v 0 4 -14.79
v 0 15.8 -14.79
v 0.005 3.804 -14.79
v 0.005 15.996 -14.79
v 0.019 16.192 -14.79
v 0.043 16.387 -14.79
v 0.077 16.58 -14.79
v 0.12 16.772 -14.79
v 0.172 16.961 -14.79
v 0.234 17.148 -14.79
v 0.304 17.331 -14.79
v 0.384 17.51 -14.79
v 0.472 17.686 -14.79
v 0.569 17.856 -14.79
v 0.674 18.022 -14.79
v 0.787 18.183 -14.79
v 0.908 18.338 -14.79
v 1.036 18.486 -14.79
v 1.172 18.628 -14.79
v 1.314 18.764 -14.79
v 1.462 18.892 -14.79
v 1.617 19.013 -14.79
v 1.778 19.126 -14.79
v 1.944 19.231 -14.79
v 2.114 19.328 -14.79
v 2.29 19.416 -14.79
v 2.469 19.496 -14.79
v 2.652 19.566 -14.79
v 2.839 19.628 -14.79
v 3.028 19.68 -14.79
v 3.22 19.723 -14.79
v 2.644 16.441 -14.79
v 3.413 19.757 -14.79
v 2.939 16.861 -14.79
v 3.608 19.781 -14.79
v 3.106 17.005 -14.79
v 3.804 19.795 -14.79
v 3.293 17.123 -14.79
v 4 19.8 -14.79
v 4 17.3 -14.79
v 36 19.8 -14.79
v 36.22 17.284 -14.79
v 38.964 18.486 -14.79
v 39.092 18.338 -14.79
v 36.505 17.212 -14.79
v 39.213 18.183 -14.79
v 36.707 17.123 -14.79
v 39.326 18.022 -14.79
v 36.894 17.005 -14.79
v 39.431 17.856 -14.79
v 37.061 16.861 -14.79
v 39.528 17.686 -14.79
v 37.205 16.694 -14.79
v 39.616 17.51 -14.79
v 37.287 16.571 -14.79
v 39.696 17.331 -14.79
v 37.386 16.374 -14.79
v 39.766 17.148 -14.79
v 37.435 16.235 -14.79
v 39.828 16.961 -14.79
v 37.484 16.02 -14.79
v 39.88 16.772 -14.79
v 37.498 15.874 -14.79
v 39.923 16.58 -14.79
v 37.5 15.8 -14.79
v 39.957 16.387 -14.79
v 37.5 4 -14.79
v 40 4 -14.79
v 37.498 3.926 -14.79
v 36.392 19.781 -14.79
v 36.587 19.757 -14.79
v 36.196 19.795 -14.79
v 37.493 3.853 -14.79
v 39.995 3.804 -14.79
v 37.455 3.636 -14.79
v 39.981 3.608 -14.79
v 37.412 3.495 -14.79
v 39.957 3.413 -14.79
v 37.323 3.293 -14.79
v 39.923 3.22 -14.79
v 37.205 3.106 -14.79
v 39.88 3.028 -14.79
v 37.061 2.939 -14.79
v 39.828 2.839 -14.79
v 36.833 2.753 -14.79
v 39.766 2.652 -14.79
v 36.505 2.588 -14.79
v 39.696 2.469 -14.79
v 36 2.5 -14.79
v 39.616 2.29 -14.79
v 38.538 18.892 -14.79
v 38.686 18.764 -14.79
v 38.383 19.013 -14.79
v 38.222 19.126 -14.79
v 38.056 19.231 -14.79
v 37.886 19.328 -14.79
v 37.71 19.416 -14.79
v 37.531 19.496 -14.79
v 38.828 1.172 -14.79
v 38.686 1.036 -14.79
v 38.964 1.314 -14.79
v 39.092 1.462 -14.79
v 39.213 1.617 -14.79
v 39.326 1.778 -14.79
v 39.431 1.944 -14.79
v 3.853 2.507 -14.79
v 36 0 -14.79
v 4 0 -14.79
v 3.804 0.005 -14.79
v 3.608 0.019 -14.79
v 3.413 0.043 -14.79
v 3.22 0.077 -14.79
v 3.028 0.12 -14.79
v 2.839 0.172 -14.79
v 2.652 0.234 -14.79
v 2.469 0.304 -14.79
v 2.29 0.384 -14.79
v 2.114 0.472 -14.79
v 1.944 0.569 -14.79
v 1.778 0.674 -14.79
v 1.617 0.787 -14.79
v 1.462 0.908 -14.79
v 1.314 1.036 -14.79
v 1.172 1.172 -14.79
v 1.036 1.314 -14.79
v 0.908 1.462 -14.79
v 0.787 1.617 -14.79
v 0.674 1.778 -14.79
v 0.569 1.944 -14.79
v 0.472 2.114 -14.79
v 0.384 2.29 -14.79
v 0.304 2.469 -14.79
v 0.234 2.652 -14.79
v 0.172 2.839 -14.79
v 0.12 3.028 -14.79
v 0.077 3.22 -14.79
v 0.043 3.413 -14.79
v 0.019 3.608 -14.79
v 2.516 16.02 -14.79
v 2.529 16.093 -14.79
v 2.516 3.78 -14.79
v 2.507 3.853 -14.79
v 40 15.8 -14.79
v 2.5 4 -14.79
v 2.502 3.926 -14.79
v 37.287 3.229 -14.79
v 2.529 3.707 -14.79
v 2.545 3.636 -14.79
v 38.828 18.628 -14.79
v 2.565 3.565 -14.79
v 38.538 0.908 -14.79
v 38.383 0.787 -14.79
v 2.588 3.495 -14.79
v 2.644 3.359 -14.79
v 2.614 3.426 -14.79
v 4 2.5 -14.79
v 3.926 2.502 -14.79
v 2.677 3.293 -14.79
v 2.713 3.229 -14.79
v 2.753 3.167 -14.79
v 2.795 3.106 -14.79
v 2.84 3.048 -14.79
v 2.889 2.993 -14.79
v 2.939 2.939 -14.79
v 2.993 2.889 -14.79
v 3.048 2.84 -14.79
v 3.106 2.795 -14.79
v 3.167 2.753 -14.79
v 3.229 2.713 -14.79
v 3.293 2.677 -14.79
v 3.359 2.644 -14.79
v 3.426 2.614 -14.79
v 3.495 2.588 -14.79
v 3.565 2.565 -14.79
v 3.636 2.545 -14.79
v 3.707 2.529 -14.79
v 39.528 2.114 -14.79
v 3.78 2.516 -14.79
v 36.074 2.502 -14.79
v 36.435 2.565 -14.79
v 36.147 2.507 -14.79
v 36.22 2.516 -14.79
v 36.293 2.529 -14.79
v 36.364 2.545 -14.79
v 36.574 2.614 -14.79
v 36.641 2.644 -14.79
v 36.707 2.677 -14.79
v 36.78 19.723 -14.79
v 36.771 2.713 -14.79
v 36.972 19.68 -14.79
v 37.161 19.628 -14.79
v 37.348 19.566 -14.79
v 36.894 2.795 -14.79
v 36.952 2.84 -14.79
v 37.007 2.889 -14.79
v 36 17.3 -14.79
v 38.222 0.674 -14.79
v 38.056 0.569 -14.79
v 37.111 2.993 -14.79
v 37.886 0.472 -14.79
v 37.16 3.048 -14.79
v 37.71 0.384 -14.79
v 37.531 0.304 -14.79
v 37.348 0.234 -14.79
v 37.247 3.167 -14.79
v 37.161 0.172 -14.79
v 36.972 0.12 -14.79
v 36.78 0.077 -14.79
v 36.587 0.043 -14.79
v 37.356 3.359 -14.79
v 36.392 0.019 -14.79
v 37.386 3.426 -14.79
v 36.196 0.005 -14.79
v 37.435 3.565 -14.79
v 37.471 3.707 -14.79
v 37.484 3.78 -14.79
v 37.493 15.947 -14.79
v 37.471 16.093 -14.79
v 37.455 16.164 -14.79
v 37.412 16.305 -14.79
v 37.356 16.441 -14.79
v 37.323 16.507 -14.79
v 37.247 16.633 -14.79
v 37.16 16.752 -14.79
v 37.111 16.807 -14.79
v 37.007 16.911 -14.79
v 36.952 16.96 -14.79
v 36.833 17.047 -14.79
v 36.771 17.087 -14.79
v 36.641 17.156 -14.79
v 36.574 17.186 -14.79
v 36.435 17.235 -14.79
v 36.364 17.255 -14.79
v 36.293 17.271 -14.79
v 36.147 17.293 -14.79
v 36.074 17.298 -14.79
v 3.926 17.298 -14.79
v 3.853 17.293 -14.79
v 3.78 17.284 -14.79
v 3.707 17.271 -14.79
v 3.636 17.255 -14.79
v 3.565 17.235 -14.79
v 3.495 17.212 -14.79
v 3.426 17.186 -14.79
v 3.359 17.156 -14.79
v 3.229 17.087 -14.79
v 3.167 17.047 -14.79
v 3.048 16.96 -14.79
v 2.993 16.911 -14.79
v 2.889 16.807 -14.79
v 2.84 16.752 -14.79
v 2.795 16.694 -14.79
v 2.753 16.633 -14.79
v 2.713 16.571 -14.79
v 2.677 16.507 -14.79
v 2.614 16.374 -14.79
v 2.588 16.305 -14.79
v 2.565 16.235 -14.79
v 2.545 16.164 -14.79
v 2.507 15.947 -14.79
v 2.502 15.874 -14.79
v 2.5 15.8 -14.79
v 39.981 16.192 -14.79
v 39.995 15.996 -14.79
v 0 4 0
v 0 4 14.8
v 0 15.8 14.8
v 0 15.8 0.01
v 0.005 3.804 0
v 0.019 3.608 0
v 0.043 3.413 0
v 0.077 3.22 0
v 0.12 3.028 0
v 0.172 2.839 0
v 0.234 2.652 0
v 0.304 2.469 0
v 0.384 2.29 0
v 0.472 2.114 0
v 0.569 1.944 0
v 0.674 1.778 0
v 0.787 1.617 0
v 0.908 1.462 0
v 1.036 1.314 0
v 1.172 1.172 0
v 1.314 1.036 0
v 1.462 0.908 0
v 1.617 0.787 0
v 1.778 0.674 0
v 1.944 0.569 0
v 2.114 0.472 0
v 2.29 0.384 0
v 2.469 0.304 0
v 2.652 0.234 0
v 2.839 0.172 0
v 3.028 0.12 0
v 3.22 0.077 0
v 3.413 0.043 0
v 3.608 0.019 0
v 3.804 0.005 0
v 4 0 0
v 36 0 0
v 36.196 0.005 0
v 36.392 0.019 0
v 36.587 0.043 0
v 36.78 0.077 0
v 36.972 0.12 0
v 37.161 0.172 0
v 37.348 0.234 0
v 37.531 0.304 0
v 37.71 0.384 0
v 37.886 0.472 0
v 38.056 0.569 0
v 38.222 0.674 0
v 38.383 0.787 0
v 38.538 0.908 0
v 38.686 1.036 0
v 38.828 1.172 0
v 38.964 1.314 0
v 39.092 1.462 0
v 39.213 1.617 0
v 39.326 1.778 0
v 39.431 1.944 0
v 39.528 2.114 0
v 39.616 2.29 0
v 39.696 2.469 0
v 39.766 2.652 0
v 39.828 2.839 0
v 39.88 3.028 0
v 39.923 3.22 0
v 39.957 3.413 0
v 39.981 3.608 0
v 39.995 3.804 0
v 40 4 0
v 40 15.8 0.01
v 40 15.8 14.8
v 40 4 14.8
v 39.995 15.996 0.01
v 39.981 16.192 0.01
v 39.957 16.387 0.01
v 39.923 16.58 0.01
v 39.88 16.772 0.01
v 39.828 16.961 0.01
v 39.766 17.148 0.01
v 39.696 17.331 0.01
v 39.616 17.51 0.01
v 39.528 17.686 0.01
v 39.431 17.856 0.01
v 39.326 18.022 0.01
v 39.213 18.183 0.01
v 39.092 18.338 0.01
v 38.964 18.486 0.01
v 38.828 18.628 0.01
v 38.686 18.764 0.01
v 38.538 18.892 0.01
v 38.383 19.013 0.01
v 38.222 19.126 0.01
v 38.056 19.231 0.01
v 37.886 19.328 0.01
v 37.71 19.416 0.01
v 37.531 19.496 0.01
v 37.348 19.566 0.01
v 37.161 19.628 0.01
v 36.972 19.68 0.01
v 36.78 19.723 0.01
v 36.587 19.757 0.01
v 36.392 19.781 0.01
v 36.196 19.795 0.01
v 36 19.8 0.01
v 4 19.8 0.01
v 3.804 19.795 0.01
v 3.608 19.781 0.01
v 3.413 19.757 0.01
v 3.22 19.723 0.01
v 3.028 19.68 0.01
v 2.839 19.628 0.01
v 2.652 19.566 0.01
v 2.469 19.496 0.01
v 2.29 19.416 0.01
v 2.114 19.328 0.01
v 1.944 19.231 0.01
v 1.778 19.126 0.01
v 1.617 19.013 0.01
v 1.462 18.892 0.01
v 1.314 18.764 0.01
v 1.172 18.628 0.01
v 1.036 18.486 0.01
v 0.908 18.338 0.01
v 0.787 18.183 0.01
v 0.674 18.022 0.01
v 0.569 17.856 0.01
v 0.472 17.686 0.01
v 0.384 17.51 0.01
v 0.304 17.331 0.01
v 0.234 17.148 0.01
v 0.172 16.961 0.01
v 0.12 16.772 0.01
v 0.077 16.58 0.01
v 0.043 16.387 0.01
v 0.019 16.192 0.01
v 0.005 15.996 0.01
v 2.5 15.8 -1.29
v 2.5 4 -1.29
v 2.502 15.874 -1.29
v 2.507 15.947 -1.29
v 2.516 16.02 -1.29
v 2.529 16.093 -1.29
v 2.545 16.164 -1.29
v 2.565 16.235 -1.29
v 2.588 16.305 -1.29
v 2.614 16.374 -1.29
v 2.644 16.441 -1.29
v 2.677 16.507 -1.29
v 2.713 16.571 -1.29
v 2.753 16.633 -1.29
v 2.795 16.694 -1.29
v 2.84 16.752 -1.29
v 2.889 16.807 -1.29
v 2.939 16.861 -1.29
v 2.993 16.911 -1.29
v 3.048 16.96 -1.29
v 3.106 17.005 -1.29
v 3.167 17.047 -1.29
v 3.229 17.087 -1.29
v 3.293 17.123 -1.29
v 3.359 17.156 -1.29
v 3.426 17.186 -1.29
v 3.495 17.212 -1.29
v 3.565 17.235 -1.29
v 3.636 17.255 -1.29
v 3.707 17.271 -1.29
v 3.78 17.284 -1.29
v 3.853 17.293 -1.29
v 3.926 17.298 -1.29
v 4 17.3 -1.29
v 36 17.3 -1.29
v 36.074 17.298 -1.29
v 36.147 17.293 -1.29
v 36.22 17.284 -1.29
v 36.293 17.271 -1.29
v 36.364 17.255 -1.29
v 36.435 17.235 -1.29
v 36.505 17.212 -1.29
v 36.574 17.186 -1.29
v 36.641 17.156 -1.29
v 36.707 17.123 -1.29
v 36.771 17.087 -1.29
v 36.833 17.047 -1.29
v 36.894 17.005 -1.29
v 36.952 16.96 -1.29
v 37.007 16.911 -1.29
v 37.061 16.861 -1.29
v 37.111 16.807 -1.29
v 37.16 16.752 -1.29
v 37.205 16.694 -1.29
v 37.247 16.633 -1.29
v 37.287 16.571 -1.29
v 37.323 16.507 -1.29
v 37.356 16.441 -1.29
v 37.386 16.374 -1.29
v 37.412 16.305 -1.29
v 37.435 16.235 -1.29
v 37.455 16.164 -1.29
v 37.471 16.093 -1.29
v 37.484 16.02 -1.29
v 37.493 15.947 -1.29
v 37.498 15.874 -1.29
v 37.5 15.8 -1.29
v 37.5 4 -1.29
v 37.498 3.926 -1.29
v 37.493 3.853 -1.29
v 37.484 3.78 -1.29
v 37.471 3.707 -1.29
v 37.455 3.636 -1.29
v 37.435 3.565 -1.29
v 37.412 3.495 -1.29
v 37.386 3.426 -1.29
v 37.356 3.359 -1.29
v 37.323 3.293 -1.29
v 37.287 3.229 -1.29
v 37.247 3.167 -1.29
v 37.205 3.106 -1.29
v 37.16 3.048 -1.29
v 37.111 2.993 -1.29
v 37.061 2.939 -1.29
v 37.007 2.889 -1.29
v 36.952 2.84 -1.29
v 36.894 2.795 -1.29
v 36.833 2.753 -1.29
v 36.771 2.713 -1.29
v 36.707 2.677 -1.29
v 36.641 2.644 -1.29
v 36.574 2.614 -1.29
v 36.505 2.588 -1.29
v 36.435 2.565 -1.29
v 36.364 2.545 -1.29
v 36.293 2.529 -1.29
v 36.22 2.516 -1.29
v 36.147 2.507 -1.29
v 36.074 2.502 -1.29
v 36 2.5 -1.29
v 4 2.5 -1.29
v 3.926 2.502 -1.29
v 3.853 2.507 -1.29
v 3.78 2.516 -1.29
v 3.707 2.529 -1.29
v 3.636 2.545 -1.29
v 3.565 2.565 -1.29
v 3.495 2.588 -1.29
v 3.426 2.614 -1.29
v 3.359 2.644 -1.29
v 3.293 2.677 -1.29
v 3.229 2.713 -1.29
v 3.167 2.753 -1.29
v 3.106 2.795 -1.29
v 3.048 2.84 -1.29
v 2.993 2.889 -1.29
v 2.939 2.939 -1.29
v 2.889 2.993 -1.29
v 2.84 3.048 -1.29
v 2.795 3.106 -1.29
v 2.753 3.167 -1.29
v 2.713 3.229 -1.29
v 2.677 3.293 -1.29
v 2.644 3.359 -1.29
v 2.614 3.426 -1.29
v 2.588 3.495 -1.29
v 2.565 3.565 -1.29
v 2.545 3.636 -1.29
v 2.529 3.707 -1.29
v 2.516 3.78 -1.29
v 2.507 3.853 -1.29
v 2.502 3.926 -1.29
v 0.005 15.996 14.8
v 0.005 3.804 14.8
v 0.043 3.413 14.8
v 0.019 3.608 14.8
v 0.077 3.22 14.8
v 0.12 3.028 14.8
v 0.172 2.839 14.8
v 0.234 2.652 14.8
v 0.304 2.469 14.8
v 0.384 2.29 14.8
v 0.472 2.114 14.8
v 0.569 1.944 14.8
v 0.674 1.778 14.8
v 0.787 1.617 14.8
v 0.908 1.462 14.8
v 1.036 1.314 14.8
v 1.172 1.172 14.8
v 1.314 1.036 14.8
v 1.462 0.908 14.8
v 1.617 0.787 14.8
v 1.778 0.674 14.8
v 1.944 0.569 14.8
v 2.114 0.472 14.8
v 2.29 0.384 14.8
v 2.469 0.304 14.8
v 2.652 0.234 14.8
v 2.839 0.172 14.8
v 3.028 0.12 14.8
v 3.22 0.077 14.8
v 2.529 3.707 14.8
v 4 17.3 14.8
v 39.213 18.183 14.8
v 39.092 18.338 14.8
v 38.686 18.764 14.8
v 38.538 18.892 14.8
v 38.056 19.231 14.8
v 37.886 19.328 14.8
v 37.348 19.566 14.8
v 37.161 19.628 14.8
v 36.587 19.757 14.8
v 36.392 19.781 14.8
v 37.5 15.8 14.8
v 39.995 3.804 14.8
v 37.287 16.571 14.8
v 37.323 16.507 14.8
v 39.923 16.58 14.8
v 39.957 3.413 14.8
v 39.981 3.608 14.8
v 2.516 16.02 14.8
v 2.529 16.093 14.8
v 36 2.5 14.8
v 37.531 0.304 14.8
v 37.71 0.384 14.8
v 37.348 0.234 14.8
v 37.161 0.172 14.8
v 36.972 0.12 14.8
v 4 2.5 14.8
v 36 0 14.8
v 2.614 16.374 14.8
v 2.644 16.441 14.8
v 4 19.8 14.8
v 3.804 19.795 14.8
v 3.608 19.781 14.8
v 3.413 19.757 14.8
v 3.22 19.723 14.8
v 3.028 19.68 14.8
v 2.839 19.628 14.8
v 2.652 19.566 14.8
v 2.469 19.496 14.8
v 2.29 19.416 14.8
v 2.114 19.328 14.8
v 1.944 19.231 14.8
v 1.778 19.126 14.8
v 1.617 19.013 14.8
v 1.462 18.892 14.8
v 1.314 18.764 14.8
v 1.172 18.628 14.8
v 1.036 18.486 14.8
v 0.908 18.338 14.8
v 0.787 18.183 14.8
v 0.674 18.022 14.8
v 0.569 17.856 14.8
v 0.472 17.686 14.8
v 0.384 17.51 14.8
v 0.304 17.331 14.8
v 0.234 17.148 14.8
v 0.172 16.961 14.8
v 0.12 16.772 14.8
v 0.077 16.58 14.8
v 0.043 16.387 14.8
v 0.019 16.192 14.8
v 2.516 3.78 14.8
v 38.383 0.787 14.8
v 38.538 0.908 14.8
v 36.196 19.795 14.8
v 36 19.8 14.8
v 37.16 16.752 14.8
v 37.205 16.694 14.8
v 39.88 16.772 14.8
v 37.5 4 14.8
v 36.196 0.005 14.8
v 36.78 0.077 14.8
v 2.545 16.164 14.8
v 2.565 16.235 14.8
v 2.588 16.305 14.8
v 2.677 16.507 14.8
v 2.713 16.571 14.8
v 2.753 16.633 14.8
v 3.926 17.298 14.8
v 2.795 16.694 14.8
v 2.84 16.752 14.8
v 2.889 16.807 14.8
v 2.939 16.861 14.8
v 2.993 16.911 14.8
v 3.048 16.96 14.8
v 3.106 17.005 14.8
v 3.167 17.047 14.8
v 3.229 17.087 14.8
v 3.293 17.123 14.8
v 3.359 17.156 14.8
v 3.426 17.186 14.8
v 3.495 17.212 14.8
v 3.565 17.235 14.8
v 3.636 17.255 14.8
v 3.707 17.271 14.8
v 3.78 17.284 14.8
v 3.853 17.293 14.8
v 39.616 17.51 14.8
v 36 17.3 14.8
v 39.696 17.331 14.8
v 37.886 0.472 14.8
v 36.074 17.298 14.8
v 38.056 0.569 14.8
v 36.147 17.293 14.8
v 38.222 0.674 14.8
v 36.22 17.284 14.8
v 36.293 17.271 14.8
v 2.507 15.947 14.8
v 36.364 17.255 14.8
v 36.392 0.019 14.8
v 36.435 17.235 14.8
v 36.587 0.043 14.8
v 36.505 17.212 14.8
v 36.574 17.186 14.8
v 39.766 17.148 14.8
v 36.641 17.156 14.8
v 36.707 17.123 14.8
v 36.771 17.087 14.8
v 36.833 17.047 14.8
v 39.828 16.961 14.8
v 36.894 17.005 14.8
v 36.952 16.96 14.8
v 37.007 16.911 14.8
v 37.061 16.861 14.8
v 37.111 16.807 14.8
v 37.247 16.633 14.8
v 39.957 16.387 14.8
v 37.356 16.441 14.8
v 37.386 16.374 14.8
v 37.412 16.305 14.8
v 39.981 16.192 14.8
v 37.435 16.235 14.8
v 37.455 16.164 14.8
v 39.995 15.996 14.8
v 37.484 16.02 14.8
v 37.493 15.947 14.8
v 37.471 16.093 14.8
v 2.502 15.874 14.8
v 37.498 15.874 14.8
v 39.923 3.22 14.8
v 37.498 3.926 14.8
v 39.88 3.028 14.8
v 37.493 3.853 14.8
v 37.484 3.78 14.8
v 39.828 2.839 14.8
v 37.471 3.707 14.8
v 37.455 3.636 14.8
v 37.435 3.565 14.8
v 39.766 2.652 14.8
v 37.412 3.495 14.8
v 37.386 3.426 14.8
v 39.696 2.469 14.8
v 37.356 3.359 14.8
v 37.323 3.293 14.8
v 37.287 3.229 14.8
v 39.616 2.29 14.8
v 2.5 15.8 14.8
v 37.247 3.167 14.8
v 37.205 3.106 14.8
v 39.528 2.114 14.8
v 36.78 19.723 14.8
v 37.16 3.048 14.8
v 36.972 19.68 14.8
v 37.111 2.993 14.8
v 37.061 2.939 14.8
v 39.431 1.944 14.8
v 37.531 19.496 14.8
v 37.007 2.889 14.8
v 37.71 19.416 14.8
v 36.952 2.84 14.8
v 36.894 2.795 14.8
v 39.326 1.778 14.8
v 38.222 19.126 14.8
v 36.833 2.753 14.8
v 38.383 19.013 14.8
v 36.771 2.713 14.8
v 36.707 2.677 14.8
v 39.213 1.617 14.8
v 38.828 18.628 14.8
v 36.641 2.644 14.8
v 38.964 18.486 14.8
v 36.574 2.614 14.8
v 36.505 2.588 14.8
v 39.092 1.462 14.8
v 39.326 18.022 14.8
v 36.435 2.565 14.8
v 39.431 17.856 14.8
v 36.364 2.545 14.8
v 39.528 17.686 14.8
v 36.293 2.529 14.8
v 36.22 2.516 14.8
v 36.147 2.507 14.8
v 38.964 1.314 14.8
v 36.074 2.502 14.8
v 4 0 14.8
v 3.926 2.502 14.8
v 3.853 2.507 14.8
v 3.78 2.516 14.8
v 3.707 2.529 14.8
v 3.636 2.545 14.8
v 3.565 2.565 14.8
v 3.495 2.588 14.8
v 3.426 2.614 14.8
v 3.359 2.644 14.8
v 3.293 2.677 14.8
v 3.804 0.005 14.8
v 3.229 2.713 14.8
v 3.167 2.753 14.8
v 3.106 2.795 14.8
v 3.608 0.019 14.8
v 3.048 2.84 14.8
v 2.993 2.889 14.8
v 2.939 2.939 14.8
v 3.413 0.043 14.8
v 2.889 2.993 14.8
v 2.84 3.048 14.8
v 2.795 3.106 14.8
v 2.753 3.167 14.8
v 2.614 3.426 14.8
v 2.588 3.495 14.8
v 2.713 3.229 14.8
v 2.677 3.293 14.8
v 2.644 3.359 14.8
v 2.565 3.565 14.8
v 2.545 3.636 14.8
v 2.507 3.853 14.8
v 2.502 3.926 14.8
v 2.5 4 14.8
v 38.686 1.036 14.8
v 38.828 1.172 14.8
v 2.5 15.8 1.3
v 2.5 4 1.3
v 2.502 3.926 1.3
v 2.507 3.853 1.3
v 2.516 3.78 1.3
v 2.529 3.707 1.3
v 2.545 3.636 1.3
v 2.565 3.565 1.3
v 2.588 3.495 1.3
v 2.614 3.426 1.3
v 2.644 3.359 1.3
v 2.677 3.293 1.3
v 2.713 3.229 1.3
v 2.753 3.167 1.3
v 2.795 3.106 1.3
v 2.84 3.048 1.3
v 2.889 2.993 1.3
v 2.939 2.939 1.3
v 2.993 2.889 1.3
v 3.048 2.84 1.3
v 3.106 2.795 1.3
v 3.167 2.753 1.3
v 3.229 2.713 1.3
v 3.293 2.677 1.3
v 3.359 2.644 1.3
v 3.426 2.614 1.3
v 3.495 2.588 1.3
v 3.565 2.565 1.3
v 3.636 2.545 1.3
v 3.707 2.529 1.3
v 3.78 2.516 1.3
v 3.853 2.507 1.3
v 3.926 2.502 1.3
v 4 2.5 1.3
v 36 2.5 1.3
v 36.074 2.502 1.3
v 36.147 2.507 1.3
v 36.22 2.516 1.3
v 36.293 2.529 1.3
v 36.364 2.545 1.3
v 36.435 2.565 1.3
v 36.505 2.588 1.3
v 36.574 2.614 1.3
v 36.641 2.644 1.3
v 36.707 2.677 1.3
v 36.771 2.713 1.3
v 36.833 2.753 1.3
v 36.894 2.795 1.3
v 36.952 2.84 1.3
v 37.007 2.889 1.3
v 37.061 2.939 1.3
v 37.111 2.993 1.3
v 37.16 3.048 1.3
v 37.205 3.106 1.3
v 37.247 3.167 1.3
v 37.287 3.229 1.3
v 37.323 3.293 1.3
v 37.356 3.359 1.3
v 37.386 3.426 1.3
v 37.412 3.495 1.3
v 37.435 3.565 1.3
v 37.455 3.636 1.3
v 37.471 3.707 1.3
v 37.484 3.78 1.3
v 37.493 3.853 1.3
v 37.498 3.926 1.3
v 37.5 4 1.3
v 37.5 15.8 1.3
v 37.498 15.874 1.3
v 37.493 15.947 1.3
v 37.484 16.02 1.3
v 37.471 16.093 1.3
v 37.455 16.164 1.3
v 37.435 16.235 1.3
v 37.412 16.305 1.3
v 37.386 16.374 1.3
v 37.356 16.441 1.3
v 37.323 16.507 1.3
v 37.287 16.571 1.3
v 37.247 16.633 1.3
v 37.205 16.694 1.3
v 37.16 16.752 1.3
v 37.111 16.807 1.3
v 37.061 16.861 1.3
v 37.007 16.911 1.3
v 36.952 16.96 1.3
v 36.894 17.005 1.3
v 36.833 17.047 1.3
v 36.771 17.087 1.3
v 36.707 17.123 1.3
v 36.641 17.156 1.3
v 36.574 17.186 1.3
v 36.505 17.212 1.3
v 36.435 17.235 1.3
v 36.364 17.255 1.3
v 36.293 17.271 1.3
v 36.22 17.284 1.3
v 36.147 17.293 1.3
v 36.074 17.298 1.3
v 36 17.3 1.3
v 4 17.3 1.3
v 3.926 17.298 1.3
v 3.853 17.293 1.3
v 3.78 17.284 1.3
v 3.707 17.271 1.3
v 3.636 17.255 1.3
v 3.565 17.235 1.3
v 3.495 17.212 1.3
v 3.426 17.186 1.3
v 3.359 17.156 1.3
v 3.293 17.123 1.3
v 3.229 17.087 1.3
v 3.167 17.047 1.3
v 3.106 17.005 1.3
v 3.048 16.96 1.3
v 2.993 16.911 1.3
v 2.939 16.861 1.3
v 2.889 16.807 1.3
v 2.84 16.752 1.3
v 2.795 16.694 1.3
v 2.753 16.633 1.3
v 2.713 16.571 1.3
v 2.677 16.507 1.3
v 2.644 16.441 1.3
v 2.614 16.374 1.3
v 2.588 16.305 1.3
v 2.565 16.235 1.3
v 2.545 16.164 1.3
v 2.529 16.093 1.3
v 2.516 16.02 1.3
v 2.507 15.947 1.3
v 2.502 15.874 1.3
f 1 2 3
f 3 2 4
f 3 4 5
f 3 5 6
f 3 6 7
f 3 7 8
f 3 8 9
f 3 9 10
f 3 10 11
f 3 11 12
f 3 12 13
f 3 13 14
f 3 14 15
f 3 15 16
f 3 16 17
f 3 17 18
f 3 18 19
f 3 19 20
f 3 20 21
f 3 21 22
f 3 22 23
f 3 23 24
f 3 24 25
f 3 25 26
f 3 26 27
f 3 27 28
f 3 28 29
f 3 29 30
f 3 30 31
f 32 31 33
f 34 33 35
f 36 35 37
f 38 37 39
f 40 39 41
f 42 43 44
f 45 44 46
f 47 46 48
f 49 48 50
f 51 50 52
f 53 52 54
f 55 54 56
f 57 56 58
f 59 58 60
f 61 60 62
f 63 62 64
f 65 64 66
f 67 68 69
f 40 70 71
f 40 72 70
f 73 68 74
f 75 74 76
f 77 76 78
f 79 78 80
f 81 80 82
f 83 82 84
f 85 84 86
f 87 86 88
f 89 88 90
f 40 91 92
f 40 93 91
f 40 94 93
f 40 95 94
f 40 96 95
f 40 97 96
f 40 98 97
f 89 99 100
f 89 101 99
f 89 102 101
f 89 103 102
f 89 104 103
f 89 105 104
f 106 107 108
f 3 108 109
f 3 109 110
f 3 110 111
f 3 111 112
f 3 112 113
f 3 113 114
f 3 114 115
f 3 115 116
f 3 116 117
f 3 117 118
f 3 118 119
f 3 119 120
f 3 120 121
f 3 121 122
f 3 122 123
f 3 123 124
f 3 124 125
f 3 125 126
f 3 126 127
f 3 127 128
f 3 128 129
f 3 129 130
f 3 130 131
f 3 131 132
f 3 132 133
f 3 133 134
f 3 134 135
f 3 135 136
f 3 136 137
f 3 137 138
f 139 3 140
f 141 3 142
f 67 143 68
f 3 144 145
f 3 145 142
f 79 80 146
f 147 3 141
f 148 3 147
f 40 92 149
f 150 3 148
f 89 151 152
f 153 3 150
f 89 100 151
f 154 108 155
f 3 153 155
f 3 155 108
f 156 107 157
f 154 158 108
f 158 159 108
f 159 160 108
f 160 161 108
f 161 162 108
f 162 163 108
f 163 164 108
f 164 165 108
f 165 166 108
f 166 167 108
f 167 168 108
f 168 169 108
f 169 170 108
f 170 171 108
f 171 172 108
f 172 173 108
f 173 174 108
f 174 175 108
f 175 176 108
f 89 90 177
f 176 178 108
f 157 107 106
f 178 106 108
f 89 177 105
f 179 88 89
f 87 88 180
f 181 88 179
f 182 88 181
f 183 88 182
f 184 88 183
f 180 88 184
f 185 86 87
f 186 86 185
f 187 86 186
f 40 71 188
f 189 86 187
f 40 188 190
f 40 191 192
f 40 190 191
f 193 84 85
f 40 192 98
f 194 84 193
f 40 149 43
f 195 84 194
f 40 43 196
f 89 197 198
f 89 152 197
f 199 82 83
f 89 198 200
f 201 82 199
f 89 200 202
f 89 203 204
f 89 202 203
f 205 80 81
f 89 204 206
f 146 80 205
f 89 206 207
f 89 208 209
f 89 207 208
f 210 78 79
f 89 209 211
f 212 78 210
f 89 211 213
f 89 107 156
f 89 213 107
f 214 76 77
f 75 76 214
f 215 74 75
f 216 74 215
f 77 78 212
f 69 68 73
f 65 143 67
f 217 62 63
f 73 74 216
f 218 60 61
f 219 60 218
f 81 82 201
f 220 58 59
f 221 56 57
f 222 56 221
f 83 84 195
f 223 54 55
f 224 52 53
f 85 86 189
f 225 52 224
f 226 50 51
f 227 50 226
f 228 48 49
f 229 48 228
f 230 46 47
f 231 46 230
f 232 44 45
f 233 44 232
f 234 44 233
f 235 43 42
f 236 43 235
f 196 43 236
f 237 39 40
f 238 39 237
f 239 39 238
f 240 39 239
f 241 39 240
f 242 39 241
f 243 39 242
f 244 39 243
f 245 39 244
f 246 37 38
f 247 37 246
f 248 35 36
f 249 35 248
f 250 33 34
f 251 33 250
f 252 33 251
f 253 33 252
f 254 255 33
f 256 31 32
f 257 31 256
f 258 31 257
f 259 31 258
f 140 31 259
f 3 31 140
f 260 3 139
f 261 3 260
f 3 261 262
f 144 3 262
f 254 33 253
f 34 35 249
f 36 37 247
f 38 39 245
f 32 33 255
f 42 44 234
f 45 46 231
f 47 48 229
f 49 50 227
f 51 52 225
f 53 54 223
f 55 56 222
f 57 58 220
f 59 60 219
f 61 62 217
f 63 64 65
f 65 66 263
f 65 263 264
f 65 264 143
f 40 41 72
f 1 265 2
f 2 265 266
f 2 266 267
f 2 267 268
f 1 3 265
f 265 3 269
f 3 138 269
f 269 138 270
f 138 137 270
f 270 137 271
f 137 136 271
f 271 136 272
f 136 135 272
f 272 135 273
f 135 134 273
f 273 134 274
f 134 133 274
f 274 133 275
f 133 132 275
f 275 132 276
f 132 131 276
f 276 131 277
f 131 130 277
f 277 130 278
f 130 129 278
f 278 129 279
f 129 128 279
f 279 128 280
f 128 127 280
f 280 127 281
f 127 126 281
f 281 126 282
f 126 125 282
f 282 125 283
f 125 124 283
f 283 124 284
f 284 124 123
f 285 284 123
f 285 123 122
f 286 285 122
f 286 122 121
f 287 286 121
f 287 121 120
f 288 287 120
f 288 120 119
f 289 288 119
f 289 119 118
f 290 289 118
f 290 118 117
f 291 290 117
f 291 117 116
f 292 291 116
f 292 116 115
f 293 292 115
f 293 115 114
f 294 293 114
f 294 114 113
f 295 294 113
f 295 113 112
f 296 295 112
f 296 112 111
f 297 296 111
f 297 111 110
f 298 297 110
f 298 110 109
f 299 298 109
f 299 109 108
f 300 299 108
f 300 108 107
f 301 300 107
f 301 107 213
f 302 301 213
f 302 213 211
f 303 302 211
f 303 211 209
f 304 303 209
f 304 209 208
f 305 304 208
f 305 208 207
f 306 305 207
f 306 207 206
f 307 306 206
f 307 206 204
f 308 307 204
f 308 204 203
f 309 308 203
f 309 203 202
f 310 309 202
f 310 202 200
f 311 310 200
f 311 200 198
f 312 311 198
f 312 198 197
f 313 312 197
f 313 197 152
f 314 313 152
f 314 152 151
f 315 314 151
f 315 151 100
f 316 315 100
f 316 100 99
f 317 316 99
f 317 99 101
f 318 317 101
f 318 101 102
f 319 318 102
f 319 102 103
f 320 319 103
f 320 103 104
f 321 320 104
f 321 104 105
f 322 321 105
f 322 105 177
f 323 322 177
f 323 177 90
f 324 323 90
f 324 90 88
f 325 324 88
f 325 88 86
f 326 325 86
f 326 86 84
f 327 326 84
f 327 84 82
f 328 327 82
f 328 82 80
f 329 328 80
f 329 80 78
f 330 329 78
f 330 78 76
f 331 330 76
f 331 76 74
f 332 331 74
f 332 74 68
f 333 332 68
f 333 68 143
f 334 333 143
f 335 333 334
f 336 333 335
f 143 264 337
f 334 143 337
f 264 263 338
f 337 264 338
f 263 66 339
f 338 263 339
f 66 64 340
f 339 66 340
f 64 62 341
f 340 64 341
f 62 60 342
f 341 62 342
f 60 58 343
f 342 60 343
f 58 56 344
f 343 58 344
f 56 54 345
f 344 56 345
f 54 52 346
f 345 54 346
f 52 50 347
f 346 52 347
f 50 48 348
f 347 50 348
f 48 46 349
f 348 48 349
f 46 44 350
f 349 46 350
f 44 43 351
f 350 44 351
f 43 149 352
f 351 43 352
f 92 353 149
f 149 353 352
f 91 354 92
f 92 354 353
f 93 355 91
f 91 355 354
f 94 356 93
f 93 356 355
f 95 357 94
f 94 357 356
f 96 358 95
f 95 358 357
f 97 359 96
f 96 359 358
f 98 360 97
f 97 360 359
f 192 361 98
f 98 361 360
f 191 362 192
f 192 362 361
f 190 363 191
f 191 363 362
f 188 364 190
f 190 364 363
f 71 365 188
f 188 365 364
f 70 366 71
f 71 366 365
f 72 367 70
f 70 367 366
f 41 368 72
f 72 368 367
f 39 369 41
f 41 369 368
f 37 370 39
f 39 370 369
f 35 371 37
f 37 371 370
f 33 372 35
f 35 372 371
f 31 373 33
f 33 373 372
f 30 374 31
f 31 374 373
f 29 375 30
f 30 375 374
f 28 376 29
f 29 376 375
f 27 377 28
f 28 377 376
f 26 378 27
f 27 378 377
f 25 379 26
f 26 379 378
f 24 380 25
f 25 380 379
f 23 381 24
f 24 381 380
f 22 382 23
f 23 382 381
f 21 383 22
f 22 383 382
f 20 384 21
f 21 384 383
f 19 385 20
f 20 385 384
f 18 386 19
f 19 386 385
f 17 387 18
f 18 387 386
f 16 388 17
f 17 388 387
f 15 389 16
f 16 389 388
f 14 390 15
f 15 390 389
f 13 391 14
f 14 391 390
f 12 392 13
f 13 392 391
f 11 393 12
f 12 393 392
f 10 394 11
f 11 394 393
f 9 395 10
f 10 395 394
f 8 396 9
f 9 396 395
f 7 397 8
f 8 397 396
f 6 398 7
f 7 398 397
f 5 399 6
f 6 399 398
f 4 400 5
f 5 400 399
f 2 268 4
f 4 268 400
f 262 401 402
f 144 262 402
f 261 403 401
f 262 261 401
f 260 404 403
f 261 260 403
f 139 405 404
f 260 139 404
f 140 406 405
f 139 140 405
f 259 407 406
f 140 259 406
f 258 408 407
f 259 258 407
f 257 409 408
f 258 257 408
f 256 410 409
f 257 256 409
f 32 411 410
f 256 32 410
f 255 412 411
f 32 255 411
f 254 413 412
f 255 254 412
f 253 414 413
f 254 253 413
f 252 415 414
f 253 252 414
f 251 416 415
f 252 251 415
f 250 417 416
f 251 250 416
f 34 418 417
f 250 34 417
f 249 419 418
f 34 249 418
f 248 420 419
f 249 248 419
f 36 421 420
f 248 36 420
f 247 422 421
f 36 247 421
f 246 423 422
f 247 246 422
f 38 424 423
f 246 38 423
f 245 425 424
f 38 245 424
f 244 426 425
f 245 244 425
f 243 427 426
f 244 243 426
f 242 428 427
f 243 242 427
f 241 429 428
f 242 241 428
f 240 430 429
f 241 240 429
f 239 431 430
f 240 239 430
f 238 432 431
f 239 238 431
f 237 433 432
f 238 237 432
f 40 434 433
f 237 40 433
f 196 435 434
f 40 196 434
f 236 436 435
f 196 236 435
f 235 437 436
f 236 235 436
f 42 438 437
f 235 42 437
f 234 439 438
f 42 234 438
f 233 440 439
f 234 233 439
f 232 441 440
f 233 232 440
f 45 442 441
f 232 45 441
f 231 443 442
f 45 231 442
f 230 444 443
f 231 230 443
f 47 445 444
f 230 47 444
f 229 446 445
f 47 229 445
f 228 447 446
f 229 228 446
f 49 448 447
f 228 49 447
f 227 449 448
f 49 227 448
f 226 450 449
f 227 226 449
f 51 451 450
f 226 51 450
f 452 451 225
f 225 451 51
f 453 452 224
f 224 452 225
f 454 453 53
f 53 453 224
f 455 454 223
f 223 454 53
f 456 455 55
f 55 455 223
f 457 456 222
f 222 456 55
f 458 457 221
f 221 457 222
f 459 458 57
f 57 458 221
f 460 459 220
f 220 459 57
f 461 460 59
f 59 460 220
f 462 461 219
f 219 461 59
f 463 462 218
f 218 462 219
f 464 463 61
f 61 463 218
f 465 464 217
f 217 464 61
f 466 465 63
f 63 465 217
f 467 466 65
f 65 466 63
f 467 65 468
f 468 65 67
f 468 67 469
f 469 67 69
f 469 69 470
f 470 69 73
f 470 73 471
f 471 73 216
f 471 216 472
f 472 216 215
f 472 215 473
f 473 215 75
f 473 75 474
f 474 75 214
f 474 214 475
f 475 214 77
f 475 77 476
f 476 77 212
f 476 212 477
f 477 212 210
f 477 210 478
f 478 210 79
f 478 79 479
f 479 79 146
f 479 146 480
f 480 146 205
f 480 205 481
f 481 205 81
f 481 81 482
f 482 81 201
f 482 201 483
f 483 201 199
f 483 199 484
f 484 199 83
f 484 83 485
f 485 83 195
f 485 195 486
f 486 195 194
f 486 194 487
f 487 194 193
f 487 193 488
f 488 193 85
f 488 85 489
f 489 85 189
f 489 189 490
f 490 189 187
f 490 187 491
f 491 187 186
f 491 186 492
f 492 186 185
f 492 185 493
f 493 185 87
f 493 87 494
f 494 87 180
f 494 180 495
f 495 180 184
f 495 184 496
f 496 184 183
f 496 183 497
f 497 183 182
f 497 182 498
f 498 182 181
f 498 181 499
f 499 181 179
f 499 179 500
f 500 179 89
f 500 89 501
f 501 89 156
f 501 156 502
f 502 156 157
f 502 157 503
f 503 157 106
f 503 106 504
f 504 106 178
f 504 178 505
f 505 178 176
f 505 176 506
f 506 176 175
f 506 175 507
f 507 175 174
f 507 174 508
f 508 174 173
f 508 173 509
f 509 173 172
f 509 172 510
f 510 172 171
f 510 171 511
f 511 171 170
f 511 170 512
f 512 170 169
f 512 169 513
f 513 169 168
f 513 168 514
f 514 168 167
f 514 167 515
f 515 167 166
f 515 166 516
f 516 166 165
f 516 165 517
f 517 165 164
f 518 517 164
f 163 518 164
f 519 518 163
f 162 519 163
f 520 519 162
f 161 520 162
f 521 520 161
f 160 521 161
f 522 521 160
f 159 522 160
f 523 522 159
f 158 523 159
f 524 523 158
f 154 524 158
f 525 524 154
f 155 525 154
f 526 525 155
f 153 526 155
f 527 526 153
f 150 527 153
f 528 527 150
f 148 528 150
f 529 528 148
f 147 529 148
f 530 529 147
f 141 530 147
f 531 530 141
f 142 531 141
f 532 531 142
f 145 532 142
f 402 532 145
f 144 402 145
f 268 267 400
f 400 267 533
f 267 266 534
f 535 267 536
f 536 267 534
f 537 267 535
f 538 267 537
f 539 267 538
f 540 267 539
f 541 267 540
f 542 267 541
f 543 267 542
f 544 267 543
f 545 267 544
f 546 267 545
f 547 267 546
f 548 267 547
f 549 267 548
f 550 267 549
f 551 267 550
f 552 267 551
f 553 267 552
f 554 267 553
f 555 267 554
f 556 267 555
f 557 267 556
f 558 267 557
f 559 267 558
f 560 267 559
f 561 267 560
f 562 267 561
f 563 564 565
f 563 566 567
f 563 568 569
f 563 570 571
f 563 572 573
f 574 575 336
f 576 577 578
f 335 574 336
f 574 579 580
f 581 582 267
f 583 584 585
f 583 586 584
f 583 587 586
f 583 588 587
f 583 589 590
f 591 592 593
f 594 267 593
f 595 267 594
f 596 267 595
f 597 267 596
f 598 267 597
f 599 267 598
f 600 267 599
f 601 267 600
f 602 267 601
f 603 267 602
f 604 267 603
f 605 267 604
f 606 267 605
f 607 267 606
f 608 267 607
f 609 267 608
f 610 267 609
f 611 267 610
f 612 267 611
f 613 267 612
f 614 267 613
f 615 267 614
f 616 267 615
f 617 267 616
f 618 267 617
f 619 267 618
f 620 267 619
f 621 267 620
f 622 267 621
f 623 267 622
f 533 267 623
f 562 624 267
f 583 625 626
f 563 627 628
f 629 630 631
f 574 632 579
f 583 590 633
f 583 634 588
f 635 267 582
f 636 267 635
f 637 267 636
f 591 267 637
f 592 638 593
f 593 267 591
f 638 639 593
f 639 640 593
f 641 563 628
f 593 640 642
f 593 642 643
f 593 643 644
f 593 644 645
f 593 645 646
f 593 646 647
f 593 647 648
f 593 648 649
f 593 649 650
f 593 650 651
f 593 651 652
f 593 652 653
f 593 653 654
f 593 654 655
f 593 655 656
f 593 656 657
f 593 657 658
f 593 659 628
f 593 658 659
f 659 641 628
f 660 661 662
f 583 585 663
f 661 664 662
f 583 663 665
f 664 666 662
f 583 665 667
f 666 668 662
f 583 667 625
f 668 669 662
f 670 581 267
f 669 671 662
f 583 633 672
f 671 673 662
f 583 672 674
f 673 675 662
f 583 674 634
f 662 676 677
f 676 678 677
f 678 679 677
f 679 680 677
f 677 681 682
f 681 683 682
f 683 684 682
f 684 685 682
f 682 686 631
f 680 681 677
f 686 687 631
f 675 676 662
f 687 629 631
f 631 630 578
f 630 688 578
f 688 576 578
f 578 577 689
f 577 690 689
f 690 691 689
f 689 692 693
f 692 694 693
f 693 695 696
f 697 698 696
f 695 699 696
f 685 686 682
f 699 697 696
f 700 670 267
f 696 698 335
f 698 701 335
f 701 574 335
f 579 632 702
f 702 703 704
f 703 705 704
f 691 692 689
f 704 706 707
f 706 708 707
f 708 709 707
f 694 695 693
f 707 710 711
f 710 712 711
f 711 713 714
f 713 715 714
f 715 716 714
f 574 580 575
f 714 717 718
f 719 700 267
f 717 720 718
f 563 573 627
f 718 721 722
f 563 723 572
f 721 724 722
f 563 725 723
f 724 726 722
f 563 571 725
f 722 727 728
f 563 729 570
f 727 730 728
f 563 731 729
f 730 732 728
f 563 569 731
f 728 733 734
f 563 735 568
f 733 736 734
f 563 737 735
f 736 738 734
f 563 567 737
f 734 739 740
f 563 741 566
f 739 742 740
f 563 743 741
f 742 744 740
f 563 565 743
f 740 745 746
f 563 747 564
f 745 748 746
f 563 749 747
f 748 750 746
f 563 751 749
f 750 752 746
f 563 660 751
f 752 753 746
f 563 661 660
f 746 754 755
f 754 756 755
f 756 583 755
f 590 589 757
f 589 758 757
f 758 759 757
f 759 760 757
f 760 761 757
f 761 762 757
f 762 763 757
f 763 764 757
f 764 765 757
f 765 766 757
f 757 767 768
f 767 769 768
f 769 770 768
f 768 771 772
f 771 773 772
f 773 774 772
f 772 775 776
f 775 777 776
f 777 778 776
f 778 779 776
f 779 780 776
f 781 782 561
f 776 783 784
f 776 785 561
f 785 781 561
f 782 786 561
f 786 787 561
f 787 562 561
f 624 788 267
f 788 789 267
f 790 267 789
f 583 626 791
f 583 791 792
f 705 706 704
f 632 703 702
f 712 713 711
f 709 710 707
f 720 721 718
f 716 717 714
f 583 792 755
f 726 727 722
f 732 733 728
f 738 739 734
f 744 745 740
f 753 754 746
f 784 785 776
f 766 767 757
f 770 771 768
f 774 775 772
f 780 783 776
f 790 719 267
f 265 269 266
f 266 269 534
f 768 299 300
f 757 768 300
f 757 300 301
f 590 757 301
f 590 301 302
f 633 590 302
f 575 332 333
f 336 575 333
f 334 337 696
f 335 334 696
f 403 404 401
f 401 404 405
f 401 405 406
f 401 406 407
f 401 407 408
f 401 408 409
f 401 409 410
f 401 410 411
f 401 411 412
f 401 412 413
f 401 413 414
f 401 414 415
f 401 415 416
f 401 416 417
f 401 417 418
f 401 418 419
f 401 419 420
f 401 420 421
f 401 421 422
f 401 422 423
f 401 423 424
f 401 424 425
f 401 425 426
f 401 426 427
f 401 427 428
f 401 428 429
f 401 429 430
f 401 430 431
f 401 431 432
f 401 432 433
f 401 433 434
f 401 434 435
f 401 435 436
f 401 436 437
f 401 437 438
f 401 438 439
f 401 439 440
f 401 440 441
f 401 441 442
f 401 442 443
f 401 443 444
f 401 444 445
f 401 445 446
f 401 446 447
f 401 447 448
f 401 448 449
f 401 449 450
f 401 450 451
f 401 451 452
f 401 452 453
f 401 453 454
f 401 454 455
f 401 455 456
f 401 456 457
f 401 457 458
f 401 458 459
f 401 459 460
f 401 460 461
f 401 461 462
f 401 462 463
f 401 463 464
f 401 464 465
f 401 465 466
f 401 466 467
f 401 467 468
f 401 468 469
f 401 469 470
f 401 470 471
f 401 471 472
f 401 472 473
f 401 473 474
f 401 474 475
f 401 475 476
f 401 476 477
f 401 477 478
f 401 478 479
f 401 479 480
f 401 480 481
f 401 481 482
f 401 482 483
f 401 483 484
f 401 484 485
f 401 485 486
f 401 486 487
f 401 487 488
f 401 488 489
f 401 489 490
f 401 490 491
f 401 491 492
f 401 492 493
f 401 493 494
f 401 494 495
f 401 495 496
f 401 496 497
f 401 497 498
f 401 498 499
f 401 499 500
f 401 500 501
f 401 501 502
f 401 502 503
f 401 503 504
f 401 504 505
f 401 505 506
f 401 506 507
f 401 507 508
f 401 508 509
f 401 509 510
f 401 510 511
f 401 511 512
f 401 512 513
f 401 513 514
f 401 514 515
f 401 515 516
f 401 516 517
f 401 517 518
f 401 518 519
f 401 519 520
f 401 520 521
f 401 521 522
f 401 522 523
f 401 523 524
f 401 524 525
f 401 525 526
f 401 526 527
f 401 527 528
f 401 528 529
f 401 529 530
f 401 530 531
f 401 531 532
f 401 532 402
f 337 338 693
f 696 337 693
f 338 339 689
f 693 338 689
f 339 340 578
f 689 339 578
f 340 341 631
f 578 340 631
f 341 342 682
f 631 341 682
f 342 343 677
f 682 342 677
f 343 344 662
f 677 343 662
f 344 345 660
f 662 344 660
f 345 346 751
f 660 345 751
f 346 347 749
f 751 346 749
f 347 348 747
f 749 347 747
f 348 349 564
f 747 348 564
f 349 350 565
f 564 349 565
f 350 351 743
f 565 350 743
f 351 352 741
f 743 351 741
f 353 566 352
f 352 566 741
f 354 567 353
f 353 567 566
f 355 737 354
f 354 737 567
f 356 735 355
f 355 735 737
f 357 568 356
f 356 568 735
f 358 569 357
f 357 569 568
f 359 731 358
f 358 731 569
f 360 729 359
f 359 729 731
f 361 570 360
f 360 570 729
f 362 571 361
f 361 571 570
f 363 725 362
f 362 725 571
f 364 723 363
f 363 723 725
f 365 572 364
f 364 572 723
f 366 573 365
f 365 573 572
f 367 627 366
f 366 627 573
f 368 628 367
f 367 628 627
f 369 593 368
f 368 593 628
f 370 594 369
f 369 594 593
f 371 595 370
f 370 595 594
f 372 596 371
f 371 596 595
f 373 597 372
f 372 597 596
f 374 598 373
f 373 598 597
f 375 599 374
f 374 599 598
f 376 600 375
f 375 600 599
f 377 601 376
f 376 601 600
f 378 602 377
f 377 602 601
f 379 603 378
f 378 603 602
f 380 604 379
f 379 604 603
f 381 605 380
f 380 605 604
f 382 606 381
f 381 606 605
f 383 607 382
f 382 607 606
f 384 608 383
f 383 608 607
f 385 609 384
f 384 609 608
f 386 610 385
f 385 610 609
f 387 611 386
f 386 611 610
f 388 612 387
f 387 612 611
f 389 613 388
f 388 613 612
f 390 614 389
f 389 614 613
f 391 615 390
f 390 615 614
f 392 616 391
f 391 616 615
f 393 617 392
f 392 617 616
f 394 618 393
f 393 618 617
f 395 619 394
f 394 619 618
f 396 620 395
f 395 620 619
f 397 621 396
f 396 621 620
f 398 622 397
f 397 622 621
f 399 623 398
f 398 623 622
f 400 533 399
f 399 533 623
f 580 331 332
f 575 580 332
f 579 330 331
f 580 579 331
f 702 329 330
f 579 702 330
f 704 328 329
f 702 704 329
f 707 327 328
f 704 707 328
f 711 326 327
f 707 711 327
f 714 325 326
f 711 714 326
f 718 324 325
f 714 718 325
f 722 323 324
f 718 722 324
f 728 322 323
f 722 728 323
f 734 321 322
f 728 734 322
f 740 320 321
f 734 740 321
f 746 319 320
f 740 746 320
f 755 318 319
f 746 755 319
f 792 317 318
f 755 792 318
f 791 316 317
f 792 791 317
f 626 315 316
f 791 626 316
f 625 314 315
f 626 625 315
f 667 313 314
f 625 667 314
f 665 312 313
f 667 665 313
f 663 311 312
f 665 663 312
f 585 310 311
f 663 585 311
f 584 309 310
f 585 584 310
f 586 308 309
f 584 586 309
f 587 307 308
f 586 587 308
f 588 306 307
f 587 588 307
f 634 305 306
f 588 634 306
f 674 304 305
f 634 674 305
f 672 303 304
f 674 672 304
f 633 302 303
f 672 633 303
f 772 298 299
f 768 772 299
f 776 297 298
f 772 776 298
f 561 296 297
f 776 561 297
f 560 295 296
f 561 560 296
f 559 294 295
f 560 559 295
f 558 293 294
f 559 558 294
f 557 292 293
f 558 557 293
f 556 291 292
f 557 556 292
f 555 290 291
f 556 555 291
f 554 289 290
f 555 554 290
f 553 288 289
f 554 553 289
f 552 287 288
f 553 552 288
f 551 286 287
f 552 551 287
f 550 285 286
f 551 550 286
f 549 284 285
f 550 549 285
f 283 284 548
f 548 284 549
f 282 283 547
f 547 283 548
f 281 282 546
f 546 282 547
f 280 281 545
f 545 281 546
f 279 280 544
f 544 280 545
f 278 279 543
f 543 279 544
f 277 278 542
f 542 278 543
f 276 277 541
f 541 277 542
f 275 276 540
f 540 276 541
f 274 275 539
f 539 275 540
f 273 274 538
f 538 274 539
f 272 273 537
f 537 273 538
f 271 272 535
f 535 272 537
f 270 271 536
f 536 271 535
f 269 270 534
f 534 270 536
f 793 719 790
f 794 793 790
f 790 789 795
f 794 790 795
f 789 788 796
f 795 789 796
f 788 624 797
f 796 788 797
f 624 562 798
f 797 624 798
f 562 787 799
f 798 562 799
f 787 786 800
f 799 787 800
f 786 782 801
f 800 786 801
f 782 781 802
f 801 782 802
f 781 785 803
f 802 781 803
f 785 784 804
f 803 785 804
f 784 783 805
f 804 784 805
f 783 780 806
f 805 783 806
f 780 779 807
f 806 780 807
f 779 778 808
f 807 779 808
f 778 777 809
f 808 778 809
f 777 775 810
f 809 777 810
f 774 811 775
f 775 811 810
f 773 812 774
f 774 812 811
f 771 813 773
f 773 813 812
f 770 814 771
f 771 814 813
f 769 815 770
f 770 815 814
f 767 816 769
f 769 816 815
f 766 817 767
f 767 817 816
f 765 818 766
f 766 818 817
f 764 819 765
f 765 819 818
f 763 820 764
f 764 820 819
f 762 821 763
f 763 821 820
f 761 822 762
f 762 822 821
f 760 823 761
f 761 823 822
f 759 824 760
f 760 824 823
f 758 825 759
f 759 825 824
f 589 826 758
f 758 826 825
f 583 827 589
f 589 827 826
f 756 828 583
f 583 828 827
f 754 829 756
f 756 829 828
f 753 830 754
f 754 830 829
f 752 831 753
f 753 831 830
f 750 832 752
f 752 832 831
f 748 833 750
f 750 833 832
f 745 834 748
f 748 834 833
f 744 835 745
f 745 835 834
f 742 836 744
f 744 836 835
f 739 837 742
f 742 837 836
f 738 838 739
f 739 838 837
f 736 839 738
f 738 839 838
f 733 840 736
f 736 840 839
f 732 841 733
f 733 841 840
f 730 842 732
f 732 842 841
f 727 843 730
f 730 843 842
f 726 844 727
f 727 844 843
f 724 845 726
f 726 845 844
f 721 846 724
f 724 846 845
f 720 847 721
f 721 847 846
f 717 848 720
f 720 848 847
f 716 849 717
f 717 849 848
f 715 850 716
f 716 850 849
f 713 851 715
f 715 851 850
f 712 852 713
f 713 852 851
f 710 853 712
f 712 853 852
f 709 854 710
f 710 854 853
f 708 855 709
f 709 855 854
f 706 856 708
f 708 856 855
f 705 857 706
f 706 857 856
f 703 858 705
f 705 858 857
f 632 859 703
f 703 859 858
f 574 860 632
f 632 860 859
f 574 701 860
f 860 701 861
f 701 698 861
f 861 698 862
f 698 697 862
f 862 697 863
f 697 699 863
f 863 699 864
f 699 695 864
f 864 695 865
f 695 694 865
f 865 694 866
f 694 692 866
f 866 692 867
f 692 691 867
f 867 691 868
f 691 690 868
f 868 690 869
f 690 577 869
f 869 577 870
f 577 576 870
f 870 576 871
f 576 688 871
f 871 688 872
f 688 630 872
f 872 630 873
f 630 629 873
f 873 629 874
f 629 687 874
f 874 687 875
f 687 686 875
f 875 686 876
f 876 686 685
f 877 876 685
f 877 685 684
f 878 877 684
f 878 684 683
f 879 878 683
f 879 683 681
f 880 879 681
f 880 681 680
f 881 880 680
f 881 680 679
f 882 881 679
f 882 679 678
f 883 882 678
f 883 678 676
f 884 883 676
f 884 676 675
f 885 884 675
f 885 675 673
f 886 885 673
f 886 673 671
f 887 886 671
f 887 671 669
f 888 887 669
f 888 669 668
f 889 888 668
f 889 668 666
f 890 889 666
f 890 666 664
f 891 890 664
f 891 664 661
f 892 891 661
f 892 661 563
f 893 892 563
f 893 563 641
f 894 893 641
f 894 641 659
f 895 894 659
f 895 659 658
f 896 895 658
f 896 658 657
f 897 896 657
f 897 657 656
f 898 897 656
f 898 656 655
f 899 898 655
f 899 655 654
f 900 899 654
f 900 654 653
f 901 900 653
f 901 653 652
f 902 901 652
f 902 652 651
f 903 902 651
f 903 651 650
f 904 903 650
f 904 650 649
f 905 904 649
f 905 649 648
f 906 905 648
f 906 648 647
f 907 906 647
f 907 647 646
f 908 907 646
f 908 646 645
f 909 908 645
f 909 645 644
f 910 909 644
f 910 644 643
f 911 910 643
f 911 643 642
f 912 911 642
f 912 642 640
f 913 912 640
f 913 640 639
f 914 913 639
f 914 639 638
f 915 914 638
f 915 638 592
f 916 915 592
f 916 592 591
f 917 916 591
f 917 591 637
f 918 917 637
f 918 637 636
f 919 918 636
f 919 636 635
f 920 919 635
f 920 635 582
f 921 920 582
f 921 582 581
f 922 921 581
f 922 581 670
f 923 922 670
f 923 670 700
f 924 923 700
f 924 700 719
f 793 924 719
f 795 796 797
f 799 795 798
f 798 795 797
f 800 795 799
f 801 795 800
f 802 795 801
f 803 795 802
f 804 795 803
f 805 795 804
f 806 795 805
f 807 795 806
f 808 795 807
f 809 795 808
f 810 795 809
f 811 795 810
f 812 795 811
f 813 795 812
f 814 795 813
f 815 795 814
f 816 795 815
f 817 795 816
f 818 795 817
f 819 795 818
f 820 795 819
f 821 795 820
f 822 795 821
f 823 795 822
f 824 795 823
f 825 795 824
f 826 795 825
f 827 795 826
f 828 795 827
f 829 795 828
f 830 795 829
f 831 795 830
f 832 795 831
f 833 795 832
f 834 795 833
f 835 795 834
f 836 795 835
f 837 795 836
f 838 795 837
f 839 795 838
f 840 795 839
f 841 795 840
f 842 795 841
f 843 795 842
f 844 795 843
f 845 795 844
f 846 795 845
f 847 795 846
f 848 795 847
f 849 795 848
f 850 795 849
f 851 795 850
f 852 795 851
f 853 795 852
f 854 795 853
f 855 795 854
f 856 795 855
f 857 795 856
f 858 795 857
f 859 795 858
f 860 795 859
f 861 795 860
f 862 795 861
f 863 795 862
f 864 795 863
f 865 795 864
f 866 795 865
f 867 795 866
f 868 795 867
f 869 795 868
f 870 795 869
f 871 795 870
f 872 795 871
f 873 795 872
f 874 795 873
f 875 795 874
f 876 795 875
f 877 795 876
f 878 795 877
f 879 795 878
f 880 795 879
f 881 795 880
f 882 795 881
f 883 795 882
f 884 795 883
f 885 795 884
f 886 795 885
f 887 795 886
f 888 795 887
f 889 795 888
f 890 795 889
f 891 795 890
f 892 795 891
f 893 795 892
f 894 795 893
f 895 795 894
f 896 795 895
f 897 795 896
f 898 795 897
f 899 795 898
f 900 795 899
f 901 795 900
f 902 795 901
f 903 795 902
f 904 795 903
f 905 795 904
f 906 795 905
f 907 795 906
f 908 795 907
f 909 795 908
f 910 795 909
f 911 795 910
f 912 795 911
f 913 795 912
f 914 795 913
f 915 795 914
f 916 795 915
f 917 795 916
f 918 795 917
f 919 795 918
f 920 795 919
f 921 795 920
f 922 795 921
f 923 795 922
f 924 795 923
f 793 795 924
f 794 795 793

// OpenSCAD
$fn=128;
union() {
difference(){
  hull(){
      translate([4,4,0]) cylinder(h=14.8,r=4);
      translate([36,4,0]) cylinder(h=14.8,r=4);
      translate([36,15.8,0]) cylinder(h=14.8,r=4);
      translate([4,15.8,0]) cylinder(h=14.8,r=4);
  }
  hull() {
      translate([4,4,1.3]) cylinder(h=20, r=1.5);
      translate([36,4,1.3]) cylinder(h=20, r=1.5);
      translate([36,15.8,1.3]) cylinder(h=20, r=1.5);
      translate([4,15.8,1.3]) cylinder(h=20, r=1.5);
  }
}
rotate([180,0,0]) translate([0,-19.8,-0.01]) difference(){
  hull(){
      translate([4,4,0]) cylinder(h=14.8,r=4);
      translate([36,4,0]) cylinder(h=14.8,r=4);
      translate([36,15.8,0]) cylinder(h=14.8,r=4);
      translate([4,15.8,0]) cylinder(h=14.8,r=4);
  }
  hull() {
      translate([4,4,1.3]) cylinder(h=20, r=1.5);
      translate([36,4,1.3]) cylinder(h=20, r=1.5);
      translate([36,15.8,1.3]) cylinder(h=20, r=1.5);
      translate([4,15.8,1.3]) cylinder(h=20, r=1.5);
  }
}
}
